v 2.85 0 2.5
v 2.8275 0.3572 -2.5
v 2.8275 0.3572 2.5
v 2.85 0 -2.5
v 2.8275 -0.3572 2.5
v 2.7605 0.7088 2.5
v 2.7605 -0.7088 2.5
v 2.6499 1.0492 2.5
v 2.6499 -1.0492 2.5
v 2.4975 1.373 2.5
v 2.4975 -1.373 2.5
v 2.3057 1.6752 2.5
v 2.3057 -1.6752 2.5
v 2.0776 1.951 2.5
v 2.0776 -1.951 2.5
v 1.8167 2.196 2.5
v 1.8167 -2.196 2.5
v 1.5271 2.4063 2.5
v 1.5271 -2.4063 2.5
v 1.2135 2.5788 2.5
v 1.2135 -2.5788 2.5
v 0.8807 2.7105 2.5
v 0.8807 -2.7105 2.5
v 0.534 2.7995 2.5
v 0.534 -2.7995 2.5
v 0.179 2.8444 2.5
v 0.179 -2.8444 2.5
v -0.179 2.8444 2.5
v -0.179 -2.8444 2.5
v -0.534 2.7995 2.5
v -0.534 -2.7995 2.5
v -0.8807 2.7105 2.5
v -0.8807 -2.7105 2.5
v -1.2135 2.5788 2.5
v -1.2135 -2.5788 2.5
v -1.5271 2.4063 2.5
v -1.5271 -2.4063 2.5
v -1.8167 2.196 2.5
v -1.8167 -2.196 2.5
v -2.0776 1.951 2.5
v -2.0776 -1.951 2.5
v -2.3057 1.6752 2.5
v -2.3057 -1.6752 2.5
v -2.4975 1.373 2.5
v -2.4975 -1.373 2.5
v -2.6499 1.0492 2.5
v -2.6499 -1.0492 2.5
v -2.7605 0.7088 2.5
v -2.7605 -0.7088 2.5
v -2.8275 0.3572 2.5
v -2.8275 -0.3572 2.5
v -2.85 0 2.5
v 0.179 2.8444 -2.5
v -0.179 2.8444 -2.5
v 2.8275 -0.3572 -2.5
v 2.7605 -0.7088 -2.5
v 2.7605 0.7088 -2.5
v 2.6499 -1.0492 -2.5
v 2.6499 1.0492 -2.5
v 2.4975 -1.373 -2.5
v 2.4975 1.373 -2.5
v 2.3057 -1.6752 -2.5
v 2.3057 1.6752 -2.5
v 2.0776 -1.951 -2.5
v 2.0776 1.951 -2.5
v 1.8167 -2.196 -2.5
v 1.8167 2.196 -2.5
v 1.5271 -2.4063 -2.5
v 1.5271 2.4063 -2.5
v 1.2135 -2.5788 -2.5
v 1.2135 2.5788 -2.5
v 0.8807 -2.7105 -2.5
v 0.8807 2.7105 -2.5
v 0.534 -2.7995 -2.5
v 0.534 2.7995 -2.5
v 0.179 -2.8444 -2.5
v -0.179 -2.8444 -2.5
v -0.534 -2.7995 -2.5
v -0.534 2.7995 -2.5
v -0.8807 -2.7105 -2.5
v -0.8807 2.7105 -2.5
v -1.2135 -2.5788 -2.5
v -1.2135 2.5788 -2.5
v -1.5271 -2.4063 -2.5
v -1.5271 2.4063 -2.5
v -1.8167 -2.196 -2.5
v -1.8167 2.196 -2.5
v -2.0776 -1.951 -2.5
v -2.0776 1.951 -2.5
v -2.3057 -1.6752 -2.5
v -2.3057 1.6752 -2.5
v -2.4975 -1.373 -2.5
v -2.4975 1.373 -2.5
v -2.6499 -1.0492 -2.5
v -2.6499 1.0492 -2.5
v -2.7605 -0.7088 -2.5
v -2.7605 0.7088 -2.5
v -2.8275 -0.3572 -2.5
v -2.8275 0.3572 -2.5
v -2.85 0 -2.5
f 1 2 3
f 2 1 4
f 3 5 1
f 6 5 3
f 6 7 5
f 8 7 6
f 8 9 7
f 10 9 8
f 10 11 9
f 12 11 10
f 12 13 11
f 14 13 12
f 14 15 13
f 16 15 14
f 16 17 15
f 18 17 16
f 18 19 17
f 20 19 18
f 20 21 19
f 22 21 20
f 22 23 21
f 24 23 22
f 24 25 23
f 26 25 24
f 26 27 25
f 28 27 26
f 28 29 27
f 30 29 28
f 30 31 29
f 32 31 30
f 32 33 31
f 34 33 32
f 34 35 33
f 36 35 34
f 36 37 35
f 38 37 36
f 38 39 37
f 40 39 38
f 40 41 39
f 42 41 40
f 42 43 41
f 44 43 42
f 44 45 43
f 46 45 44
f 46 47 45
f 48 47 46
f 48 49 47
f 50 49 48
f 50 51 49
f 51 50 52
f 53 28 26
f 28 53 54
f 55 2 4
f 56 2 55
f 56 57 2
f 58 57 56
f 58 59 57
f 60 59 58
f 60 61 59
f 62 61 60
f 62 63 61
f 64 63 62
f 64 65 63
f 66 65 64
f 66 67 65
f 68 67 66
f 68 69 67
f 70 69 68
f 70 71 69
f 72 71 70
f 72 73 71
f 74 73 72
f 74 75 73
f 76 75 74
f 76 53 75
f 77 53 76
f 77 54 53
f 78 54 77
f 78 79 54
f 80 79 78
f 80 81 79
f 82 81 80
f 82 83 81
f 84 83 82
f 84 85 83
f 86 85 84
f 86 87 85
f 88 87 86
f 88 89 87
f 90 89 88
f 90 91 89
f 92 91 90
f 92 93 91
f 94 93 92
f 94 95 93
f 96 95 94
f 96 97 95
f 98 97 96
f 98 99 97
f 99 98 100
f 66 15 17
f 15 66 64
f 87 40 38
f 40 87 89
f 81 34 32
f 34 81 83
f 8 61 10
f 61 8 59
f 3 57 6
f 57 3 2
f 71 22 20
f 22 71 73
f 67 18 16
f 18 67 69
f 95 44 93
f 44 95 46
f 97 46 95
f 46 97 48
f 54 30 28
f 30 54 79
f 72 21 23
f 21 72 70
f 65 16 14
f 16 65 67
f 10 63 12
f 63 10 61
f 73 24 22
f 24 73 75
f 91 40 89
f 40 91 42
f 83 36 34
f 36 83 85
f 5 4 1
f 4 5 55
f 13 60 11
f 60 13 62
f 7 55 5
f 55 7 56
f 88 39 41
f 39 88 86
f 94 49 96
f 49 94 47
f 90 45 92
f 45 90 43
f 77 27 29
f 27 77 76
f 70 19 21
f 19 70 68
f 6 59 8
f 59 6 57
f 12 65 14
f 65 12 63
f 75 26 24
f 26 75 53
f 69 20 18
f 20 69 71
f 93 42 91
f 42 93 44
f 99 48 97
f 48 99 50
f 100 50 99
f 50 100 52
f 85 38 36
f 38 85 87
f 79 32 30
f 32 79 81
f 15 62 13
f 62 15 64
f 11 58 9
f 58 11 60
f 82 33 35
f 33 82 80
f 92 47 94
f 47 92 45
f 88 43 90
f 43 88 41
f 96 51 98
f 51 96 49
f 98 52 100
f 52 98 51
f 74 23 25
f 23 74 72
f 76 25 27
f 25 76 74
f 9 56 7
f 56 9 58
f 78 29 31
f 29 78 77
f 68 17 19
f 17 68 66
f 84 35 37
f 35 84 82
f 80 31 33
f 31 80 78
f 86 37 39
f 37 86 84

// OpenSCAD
$fn = 50;


difference() {
	union() {
		translate(v = [0, 0, -2.5000000000]) {
			cylinder(h = 5, r = 2.8500000000);
		}
	}
	union() {
		translate(v = [0, 0, -100.0000000000]) {
			cylinder(h = 200, r = 0);
		}
	}
}
